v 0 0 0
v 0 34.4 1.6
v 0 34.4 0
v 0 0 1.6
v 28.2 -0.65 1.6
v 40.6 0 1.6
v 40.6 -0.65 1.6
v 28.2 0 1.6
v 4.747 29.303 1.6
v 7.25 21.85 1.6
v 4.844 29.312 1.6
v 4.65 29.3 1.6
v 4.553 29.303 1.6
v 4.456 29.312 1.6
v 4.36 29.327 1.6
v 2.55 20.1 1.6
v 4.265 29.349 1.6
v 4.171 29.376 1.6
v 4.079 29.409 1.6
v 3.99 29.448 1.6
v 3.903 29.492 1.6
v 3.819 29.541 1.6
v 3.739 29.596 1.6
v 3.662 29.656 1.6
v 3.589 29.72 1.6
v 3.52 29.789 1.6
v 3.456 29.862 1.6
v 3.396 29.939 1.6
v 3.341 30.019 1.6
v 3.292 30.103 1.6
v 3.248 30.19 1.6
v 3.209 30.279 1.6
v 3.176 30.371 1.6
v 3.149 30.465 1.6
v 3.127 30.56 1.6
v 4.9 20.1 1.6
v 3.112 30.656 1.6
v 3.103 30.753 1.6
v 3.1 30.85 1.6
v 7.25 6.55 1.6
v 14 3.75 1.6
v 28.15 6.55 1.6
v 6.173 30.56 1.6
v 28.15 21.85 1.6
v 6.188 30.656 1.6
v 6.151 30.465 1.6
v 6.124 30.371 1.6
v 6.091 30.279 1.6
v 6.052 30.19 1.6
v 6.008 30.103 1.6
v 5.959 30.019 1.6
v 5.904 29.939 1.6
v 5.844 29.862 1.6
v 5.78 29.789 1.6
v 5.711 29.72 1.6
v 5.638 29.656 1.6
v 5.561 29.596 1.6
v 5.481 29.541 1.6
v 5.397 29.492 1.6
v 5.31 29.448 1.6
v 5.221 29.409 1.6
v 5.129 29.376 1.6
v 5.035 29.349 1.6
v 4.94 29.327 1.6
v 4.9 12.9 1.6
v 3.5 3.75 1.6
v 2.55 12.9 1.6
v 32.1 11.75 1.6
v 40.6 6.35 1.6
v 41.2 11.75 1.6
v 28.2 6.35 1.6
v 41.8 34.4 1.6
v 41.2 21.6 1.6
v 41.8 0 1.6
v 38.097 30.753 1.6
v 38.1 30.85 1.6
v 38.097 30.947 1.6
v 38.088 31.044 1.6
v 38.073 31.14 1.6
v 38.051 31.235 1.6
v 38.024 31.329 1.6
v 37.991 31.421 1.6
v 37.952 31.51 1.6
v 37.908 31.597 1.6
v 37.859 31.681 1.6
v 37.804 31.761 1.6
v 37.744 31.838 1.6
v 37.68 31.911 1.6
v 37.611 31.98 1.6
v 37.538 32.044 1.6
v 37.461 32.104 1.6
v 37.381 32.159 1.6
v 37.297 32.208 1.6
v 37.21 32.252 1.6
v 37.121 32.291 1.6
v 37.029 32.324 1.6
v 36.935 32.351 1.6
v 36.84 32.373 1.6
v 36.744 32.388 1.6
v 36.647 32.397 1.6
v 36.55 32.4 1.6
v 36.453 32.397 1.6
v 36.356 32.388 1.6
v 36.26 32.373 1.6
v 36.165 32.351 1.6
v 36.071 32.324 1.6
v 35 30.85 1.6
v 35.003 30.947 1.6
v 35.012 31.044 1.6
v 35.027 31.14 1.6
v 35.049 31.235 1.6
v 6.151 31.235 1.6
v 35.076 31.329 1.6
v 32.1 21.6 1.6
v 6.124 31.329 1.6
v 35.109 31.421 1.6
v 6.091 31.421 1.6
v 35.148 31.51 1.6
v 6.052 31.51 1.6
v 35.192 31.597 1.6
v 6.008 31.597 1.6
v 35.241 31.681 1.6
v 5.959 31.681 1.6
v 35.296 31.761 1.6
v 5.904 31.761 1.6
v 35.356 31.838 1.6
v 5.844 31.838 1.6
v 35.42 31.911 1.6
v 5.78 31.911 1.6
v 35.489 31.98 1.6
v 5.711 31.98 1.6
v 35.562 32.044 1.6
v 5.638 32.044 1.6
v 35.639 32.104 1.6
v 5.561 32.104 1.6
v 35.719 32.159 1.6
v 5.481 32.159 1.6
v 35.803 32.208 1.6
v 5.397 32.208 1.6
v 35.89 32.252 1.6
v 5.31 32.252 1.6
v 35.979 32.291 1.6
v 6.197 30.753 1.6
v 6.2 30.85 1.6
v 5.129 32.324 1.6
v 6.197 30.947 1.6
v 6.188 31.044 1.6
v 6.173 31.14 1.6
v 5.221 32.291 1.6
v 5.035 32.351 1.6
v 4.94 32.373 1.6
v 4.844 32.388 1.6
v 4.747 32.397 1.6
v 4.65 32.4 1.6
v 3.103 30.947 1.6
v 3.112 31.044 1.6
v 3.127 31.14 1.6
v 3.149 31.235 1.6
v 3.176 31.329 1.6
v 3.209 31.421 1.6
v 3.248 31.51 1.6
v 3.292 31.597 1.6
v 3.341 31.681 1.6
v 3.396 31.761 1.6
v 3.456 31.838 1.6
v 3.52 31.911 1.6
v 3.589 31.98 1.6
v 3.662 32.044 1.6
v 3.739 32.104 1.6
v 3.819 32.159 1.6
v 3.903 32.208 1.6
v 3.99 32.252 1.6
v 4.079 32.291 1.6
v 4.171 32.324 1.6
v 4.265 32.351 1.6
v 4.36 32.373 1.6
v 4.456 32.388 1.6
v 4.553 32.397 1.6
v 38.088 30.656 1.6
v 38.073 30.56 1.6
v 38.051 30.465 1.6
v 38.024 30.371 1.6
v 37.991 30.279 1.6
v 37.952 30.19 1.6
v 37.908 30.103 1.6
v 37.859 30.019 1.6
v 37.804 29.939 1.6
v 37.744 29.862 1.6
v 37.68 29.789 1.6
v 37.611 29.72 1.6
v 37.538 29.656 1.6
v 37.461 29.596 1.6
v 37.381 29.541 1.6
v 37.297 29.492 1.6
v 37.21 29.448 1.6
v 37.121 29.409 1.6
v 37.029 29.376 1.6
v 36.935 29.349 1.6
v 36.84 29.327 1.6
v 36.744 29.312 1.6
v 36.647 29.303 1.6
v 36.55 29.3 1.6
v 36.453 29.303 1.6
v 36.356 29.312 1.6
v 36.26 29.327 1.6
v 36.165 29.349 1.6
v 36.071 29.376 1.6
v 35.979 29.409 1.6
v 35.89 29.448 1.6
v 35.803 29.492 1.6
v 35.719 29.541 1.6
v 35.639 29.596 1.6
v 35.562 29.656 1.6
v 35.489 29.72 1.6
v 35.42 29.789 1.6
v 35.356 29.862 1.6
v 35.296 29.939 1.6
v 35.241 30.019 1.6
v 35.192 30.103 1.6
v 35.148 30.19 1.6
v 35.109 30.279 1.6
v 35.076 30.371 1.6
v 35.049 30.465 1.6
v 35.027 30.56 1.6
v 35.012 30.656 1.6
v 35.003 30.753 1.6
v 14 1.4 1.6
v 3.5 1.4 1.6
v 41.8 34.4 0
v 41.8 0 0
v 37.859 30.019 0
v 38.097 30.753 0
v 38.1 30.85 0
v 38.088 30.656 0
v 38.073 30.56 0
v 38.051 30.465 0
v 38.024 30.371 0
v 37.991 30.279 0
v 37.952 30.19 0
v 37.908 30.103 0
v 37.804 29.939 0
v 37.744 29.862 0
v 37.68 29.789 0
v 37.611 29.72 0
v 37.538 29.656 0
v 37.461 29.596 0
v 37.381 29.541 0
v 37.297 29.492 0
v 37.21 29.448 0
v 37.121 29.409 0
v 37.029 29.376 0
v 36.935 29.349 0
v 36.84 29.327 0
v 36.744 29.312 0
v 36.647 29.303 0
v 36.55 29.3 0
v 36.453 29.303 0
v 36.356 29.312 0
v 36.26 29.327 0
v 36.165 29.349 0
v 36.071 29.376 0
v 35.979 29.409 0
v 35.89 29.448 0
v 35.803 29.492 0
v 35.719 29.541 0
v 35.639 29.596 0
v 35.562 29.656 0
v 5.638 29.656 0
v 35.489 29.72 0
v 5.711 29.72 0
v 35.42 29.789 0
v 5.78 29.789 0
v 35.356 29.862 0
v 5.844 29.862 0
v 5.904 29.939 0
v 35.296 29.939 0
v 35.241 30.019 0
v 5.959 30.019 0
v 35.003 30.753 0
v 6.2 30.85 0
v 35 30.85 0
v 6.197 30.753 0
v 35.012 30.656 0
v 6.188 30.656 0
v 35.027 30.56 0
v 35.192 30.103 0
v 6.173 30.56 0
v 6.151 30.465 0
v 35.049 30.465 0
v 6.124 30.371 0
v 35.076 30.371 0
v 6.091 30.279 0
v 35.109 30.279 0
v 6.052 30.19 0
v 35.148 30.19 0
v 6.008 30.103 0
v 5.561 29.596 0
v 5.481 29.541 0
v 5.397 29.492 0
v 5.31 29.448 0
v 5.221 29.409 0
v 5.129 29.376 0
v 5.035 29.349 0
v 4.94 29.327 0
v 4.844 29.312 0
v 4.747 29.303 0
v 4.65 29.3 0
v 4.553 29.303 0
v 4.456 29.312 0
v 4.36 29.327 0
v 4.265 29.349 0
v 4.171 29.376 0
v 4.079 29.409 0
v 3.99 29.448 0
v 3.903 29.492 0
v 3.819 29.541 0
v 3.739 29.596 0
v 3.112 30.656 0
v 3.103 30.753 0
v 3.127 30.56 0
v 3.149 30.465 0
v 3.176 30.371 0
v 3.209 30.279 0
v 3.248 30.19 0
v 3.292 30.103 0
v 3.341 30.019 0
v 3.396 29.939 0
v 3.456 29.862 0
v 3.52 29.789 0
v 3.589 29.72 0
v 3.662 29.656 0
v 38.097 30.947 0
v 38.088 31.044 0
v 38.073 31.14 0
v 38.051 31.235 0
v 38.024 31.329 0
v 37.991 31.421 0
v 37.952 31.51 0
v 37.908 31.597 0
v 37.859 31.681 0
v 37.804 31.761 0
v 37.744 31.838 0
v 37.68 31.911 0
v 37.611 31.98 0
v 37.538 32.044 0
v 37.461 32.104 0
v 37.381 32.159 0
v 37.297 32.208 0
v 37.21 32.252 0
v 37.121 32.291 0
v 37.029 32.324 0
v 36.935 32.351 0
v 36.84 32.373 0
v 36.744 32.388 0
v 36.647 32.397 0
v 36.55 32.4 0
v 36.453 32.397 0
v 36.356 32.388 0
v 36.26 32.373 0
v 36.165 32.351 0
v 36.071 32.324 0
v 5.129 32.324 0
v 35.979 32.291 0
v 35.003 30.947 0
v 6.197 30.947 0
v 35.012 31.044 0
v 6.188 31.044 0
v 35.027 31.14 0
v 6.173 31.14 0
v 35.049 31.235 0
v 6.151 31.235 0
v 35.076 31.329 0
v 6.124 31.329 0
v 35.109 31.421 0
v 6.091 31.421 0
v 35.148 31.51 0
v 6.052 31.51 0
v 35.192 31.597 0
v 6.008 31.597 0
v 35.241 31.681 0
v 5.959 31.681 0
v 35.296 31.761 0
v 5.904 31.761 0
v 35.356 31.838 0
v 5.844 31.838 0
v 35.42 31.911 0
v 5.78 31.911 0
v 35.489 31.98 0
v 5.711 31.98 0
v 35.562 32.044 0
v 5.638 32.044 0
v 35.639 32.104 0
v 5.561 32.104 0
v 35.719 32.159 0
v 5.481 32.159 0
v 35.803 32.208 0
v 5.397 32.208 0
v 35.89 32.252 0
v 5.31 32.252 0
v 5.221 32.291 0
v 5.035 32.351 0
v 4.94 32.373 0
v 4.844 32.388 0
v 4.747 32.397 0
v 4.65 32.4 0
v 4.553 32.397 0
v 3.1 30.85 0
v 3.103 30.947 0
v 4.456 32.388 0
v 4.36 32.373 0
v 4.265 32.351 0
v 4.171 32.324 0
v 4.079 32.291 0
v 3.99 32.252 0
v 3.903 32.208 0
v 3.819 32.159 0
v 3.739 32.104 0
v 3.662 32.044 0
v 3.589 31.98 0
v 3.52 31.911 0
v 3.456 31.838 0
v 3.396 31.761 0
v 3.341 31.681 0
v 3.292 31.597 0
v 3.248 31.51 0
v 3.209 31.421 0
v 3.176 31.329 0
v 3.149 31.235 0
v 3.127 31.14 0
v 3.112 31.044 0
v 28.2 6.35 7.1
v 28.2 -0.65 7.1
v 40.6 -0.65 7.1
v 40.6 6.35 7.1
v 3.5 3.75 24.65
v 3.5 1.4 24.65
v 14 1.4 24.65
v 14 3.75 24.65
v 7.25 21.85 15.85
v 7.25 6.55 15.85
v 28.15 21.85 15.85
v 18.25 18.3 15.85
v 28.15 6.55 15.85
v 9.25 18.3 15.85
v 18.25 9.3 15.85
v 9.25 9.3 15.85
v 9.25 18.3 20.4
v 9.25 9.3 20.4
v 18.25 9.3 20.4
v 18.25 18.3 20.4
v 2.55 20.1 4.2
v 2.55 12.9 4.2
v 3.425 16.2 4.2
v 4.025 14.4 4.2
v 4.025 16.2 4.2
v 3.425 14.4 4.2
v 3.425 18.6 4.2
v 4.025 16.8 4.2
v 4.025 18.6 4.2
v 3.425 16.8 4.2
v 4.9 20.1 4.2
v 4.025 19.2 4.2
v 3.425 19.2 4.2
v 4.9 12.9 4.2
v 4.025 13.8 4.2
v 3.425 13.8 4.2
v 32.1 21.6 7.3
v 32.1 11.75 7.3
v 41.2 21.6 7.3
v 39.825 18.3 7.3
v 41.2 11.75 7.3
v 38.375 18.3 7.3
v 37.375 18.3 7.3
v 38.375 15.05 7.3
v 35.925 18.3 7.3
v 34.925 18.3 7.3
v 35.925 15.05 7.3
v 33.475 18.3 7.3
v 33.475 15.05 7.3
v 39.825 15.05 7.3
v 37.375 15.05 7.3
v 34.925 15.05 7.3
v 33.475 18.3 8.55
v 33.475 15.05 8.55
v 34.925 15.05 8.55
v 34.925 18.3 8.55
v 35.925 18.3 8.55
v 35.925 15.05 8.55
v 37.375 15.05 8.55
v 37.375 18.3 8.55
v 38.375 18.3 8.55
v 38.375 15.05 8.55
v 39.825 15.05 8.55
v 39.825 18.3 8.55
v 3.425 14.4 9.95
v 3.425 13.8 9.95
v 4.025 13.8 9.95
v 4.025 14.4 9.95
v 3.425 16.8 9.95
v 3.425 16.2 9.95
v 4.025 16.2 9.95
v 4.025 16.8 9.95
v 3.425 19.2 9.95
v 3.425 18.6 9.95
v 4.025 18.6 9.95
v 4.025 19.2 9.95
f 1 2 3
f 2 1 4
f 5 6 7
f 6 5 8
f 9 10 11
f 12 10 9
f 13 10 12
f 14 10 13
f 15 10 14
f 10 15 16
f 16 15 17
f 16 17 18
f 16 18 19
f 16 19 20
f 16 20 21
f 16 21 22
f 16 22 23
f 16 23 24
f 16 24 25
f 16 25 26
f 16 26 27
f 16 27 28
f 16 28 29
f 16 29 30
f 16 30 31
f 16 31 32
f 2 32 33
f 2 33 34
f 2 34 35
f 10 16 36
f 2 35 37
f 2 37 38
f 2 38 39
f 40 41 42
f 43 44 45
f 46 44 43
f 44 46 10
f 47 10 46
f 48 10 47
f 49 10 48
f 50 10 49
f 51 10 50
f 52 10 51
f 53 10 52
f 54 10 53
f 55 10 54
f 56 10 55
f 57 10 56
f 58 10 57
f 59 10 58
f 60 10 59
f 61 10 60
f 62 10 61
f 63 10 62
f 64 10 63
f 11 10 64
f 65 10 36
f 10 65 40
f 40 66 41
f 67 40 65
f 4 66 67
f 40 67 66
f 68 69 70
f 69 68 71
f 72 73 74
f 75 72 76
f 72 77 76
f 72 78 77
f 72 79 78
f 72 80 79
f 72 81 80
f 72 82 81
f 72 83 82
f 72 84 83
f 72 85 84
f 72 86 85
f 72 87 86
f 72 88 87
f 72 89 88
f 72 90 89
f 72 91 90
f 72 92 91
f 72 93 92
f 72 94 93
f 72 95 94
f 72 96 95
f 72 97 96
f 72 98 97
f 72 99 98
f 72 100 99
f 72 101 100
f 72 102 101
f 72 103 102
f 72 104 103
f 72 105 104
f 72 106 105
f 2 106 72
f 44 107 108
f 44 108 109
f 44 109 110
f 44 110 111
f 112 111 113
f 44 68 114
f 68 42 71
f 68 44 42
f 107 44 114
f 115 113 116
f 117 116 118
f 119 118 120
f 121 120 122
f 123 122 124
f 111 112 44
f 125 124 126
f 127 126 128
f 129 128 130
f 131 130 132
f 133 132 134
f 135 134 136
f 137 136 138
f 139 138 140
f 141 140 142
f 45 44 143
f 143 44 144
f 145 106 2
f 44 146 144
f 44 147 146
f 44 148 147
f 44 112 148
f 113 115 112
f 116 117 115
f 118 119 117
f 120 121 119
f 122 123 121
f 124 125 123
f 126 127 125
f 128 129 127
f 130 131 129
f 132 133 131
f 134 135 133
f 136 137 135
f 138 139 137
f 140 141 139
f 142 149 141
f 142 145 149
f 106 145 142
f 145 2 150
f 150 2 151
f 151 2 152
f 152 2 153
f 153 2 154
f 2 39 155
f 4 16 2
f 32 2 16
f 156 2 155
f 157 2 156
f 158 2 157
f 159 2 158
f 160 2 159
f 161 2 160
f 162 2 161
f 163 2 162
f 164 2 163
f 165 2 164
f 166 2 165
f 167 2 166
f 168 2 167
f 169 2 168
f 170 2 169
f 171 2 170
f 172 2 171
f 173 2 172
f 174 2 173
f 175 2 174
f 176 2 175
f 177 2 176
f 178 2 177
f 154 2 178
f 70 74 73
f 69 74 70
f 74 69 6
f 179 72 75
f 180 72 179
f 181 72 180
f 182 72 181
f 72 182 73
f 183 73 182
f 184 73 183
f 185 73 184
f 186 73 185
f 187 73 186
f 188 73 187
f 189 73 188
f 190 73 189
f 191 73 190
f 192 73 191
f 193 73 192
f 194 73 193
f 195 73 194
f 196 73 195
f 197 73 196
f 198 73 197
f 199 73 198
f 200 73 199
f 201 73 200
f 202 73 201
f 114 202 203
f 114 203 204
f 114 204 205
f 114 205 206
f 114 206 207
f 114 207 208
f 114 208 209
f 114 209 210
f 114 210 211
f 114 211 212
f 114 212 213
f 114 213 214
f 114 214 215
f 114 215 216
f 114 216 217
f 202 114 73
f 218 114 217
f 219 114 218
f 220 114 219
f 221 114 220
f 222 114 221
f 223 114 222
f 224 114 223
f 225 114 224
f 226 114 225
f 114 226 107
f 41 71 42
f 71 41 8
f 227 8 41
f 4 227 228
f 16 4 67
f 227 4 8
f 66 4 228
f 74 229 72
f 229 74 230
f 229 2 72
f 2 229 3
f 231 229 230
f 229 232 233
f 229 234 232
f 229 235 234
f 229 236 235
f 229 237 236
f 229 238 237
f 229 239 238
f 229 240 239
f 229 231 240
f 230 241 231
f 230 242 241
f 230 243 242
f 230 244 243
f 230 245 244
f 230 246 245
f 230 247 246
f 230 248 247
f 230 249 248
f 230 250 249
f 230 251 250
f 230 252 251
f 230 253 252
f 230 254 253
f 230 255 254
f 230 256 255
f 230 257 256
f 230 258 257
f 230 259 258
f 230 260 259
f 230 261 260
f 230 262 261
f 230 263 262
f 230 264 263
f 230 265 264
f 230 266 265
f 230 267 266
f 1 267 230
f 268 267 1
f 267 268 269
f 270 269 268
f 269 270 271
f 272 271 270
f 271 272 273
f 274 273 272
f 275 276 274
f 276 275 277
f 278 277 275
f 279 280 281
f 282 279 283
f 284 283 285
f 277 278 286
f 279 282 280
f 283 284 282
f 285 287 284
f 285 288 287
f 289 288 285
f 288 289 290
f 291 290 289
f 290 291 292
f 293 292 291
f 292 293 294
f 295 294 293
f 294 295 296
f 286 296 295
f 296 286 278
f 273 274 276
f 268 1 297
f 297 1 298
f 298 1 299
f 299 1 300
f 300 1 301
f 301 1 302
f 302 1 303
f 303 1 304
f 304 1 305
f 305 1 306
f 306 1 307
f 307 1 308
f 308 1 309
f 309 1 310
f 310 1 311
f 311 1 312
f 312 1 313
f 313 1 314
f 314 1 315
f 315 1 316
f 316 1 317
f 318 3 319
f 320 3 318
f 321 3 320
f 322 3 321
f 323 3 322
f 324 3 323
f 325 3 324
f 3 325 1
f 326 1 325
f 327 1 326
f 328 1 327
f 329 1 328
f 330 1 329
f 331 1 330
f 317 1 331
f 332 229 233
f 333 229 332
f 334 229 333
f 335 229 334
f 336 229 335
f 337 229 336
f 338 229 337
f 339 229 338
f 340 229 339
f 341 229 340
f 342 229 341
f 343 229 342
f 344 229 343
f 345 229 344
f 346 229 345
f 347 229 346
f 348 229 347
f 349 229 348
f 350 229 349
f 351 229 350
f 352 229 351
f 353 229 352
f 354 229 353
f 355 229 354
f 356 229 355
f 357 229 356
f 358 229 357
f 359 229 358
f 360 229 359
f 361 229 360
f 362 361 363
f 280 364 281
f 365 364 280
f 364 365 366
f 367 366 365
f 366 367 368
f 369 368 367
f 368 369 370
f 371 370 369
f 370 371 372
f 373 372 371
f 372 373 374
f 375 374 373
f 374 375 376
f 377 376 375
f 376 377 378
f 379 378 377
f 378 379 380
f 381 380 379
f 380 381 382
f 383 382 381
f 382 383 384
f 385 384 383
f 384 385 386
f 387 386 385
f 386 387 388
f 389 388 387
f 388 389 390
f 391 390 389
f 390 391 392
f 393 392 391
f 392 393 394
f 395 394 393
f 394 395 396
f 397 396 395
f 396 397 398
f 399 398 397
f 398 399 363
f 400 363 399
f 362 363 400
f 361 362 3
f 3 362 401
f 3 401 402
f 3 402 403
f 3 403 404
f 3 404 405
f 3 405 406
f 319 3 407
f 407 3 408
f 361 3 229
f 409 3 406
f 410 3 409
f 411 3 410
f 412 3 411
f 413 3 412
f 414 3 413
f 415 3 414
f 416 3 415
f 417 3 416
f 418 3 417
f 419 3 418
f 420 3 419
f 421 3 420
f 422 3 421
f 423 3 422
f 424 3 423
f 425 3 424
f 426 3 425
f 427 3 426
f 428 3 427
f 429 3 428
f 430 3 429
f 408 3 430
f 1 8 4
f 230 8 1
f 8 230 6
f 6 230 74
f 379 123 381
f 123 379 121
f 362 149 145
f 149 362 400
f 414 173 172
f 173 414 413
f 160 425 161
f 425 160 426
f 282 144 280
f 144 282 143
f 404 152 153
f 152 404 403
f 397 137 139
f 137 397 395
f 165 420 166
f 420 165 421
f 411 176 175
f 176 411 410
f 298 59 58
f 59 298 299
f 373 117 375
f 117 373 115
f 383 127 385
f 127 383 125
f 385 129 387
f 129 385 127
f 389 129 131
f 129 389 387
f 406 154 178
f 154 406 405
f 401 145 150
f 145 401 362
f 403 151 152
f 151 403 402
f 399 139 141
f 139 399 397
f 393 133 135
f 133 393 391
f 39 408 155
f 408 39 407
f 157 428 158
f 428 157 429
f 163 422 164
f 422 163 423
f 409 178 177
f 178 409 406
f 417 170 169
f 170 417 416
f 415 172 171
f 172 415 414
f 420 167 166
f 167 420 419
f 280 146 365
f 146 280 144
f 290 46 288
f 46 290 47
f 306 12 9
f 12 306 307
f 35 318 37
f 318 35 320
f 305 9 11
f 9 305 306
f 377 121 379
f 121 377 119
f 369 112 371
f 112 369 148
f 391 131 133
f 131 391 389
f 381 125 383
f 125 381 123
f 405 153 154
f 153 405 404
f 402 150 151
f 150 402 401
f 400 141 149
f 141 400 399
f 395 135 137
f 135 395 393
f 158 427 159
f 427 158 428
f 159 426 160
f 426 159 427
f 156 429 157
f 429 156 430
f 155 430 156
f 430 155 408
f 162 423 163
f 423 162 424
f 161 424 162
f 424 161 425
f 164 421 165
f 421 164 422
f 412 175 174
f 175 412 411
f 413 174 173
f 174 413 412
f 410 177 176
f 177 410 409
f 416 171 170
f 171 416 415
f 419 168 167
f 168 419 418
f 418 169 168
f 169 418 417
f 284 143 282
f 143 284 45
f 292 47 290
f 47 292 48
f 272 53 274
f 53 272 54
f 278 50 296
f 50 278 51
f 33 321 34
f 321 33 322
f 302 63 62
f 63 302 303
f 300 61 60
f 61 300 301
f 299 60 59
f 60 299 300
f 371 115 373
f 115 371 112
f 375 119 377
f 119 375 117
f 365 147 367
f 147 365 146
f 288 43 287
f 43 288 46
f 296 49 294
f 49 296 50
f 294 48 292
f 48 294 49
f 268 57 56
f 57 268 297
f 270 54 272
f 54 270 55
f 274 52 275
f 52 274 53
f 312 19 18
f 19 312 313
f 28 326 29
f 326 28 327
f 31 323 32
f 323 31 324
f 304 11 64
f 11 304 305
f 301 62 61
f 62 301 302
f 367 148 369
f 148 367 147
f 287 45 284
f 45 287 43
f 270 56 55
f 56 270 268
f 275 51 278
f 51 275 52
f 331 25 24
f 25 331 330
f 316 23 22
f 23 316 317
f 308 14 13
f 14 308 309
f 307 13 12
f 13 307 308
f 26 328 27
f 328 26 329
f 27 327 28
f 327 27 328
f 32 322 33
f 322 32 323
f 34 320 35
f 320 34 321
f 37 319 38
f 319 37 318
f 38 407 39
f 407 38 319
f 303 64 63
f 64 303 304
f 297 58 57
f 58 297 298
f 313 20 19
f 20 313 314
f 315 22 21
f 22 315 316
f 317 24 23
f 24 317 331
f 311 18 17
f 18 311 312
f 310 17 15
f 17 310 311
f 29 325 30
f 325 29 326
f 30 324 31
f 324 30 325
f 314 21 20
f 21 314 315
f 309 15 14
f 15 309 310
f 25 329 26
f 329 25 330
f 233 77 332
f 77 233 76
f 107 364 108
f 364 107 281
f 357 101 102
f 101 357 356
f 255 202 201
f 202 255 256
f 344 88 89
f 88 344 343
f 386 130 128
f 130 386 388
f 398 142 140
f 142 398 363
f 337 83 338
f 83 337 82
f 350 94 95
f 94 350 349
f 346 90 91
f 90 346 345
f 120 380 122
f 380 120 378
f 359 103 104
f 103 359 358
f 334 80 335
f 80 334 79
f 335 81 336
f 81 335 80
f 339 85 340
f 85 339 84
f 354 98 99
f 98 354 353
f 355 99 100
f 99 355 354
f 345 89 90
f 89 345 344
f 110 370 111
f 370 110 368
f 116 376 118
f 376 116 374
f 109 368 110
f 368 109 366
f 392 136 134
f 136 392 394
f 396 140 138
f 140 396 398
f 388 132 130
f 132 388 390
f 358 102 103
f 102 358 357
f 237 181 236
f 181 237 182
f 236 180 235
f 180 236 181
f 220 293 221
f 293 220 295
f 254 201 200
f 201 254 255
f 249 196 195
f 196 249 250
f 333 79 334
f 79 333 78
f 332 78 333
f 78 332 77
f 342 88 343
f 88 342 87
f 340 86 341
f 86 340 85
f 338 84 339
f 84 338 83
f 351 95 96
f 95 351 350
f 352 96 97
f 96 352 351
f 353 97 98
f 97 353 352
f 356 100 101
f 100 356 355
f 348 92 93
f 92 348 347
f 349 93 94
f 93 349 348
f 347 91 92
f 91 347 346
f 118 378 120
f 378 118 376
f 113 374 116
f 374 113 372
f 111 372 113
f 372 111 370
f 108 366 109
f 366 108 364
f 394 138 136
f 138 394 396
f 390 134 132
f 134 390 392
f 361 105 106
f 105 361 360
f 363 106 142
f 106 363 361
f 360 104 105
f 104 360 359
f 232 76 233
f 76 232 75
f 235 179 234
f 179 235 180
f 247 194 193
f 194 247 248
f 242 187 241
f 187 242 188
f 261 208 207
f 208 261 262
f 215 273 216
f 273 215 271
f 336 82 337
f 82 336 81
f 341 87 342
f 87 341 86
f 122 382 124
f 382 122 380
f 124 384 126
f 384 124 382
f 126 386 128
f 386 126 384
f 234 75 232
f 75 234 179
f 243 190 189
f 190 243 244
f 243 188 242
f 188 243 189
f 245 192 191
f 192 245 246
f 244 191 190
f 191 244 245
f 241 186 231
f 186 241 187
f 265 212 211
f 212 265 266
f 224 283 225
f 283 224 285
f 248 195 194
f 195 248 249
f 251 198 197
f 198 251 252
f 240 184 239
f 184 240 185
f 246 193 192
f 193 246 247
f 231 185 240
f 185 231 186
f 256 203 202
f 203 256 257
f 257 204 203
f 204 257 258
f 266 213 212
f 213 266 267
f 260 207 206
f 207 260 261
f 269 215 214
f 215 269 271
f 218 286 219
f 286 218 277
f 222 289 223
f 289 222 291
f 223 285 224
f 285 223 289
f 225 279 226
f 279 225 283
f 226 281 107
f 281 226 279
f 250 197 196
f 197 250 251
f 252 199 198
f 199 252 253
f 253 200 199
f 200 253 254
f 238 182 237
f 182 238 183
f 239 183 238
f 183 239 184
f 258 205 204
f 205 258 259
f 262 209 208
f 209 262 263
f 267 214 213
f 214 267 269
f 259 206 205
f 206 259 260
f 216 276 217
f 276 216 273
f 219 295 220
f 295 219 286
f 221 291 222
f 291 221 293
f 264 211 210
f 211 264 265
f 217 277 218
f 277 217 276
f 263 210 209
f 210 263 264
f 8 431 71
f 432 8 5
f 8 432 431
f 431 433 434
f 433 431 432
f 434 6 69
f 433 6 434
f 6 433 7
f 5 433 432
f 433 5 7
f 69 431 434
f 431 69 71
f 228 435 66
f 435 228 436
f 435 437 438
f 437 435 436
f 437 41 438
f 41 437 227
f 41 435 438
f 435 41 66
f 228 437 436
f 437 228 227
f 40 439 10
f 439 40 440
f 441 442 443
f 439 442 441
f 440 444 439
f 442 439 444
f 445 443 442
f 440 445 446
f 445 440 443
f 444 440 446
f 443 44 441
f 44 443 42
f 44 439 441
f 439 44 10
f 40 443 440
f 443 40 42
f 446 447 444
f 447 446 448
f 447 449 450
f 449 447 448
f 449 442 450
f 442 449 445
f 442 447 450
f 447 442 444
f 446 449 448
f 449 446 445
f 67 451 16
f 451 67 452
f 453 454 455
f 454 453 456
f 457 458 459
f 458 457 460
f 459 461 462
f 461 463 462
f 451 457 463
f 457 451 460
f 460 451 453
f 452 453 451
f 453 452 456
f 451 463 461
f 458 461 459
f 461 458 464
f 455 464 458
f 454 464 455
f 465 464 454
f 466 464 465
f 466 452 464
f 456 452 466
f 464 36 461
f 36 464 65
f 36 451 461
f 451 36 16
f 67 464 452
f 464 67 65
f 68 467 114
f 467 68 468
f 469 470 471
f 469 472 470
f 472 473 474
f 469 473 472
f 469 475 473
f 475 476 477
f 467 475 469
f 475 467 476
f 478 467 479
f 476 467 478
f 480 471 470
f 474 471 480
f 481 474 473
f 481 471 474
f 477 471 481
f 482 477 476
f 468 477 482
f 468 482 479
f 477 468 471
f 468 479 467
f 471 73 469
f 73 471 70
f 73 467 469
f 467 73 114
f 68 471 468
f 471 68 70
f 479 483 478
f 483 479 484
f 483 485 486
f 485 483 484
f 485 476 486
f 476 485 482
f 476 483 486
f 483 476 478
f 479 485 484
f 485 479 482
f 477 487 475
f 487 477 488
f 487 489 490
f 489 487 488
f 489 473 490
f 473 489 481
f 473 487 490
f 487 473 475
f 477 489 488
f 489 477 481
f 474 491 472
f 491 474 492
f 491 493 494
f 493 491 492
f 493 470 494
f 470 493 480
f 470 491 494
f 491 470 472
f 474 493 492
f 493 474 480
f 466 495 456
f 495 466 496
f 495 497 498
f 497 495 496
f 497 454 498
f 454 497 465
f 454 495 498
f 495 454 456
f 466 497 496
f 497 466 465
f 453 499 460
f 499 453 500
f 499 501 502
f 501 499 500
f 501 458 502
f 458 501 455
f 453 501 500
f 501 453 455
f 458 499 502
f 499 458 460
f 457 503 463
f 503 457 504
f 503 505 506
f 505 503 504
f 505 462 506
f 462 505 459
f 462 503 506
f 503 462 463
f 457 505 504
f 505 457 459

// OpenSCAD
// ----- ----- ----- Declaração de Variáveis ----- ----- ----- //
res=100;
folga1=0.125;

amais=0; //0 ou 2

pcbx=41.8;
pcby=34.4;
pcbz=1.6;
pcbr=(35-28.8)/4;
pcbalt=1.6;
pbcentre=(35+28.8)/2;
pcbfuro1=3.1+pcbr;
pcbfuro2=pcby-2-pcbr;

conectMotorx=12.4;
conectMotory=7;
conectMotorz=5.5;
tMx=28.2;
tMy=-0.65;

conectAlix=10.5;
conectAliy=2.35;
conectAliz=14.15+10.5-pcbz;
tAx=3.5;
tAy=1.4;

conectDRVx=20.9;
conectDRVy=15.3;
conectDRVz=14.25;
tDRVx=7.25;
tDRVy=6.55;

conectDisspx=9;
conectDisspy=9;
conectDisspz=4.55;
tDsx=2;
tDsy=2.75;
tDsz=conectDRVz;

conectEDSx=2.35;
conectEDSy=7.2;
conectEDSz=2.6;
tEDSx=2.55;
tEDSy=pcby-14.3-conectEDSy;

//conectEDSx=2.35;
//conectEDSy=7.2;
//conectEDSz=2.6;
//tEDSx=2.55;
//tEDSy=pcby-14.3-conectEDSy;

conectStepx=9.1;
conectStepy=9.85;
conectStepz=5.7;
tSx=pcbx-conectStepx-0.6;
tSy=pcby-12.8-conectStepy;

conectStep123x=1.45;
conectStep123y=3.25;
conectStep123z=1.25;
tS1x=tSx+conectStepx/2-(3*conectStep123x+2)/2;
tS1y=tSy+conectStepy/2-conectStep123y/2;
tS2x=tS1x+1+conectStep123x;
tS2y=tSy+conectStepy/2-conectStep123y/2;
tS3x=tS2x+1+conectStep123x;
tS3y=tSy+conectStepy/2-conectStep123y/2;

fio06=0.6;
fioz=5.75;

// ----- ----- ----- MAIN ----- ----- ----- //
difference(){
    cube([pcbx,pcby,pcbz+amais]);
    #translate([pcbfuro1,pcbfuro2,0])cylinder(pcbalt+amais,pcbr,pcbr,$fn=res);
    #translate([pcbfuro1+pbcentre,pcbfuro2,0])cylinder(pcbalt+amais,pcbr,pcbr,$fn=res);
}

translate([tMx,tMy,pcbz+amais])cube([conectMotorx,conectMotory,conectMotorz]);
translate([tAx,tAy,pcbz+amais])cube([conectAlix,conectAliy,conectAliz]);
translate([tDRVx,tDRVy,pcbz+amais])cube([conectDRVx,conectDRVy,conectDRVz]);
translate([tDRVx+tDsx,tDRVy+tDsy,tDsz+pcbz+amais])cube([conectDisspx,conectDisspy,conectDisspz]);
translate([tEDSx,tEDSy,pcbz+amais])cube([conectEDSx,conectEDSy,conectEDSz]);
translate([tSx,tSy,pcbz+amais])cube([conectStepx,conectStepy,conectStepz]);
translate([tS1x,tS1y,conectStepz+pcbz+amais])cube([conectStep123x,conectStep123y,conectStep123z]);
translate([tS2x,tS2y,conectStepz+pcbz+amais])cube([conectStep123x,conectStep123y,conectStep123z]);
translate([tS3x,tS3y,conectStepz+pcbz+amais])cube([conectStep123x,conectStep123y,conectStep123z]);
translate([tEDSx+conectEDSx/2-fio06/2,tEDSy+(conectEDSy/3)/2-fio06/2,conectEDSz+pcbz+amais])cube([fio06,fio06,fioz]);
translate([tEDSx+conectEDSx/2-fio06/2,tEDSy+(conectEDSy/3)/2-fio06/2+conectEDSy/3,conectEDSz+pcbz+amais])cube([fio06,fio06,fioz]);
translate([tEDSx+conectEDSx/2-fio06/2,tEDSy+(conectEDSy/3)/2-fio06/2+conectEDSy/3+conectEDSy/3,conectEDSz+pcbz+amais])cube([fio06,fio06,fioz]);
